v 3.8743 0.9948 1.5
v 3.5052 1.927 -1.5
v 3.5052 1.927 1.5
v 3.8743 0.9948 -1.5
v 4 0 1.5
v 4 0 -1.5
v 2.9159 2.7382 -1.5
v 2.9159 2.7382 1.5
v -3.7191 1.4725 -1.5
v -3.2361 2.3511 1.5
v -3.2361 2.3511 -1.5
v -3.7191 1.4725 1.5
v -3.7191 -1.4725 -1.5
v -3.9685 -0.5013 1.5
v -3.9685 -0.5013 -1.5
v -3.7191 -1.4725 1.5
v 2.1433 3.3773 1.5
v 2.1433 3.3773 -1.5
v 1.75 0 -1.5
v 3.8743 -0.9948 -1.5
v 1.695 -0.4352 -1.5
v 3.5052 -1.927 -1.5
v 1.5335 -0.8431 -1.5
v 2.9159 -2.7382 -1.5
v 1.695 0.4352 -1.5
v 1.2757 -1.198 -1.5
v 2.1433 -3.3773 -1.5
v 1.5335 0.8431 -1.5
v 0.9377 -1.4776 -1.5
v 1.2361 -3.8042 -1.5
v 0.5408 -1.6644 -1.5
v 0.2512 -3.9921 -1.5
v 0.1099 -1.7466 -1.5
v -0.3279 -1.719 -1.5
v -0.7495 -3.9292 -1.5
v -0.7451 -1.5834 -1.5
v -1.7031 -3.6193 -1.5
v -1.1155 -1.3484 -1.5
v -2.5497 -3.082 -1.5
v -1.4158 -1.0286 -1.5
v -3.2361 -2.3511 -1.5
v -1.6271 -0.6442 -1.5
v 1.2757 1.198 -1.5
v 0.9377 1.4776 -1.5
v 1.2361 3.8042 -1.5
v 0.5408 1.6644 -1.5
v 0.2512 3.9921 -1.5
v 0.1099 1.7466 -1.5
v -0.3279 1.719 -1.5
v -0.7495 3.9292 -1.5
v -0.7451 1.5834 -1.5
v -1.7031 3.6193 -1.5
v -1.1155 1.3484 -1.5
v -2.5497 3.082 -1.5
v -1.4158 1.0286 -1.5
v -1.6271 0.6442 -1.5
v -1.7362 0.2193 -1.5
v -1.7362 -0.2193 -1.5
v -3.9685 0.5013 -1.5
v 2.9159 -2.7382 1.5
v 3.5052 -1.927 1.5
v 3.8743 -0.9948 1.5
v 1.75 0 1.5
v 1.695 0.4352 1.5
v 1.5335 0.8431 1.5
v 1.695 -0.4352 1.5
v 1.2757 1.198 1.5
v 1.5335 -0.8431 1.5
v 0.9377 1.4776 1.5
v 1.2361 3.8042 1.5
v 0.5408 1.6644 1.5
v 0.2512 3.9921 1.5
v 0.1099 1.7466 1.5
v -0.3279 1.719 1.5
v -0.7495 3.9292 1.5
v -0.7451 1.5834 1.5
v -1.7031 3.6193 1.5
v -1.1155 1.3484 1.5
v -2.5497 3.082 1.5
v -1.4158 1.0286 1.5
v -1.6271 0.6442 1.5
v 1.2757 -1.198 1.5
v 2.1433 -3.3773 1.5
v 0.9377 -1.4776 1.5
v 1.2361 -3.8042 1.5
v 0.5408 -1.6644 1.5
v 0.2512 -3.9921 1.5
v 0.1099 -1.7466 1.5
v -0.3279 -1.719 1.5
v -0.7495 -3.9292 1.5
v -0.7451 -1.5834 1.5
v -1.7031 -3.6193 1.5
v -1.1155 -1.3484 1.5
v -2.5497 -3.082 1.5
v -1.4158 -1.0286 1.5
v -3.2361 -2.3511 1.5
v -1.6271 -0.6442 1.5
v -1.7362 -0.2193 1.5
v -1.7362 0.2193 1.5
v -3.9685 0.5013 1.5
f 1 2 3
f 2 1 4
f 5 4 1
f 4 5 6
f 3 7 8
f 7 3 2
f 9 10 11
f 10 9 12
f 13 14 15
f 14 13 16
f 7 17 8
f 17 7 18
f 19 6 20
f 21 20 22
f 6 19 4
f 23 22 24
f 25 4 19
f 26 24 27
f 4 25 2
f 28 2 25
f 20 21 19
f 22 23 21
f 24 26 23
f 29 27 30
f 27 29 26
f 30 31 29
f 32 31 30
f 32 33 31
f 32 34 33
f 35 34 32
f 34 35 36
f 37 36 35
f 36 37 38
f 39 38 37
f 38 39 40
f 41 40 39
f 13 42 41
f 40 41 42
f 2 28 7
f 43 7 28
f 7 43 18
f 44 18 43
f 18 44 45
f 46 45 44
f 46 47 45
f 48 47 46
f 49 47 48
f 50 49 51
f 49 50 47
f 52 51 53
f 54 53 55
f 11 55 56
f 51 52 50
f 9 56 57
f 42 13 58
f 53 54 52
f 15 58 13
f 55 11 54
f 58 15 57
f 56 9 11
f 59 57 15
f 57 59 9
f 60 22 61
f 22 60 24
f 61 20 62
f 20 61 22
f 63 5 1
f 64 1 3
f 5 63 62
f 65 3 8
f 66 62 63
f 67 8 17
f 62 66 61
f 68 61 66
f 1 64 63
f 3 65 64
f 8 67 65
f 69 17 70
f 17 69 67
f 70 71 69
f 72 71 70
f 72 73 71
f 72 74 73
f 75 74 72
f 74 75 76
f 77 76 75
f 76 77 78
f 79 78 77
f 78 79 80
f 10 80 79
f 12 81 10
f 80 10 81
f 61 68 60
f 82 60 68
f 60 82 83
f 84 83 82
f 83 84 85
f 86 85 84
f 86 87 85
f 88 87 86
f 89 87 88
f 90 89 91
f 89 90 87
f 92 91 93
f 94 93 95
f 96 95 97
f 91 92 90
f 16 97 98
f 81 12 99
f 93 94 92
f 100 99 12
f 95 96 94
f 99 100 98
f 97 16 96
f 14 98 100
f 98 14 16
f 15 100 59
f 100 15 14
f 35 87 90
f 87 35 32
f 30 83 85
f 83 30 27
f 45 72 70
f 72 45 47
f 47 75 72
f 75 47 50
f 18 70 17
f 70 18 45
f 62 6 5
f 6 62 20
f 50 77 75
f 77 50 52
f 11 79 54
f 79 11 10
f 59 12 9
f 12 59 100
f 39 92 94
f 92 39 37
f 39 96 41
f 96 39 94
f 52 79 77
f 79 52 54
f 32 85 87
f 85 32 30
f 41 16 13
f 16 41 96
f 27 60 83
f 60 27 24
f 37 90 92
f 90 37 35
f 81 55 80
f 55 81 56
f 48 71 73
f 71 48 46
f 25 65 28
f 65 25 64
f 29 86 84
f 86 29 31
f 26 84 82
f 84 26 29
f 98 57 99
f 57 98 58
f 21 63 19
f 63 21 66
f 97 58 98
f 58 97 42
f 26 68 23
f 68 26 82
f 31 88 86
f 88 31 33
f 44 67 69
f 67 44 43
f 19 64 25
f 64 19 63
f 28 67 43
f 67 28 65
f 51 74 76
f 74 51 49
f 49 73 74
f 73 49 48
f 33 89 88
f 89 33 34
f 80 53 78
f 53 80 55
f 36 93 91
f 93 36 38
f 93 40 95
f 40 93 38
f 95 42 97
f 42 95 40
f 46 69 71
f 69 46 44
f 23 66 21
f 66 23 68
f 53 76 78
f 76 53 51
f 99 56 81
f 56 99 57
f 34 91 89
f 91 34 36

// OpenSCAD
// file: lib/screw_nuts.scad
$fn=25;

module screw_m3(h=20){
    cylinder(d=3, h=h, center=true);
    translate([0, 0, -h/2-1.5])
        difference(){
            cylinder(d=5.5, h=3, center=true);
            translate([0, 0, -0.8])
                cylinder(d=2.8, h=1.8, $fn=6, center=true);
        }
}

module screw_m4(h=20){
    cylinder(d=4, h=h, center=true);
    translate([0, 0, -h/2-2])
        difference(){
            cylinder(d=7, h=4, center=true);
            translate([0, 0, -0.8])
                cylinder(d=3.5, h=2.5, $fn=6, center=true);
        }
}

module nut_m3(){
    difference(){
        cylinder(d=6, h=2.4, $fn=6);
        translate([0, 0, -0.05])
            cylinder(d=3, h=2.5);
    }
}

module nut_m4(){
    difference(){
        cylinder(d=7.6, h=3.2, $fn=6);
        translate([0, 0, -0.05])
            cylinder(d=4, h=3.3);
    }
}

module washer_m3(h){
    difference(){
        cylinder(d=8, h=h, center=true);
        cylinder(d=3.5, h=h+0.1, center=true);
    }
}
// main file
// NAME: Washer M3x3
// COLOR: 80
// CATEGORY: Support

include <lib/screw_nuts.scad>

washer_m3(3);
